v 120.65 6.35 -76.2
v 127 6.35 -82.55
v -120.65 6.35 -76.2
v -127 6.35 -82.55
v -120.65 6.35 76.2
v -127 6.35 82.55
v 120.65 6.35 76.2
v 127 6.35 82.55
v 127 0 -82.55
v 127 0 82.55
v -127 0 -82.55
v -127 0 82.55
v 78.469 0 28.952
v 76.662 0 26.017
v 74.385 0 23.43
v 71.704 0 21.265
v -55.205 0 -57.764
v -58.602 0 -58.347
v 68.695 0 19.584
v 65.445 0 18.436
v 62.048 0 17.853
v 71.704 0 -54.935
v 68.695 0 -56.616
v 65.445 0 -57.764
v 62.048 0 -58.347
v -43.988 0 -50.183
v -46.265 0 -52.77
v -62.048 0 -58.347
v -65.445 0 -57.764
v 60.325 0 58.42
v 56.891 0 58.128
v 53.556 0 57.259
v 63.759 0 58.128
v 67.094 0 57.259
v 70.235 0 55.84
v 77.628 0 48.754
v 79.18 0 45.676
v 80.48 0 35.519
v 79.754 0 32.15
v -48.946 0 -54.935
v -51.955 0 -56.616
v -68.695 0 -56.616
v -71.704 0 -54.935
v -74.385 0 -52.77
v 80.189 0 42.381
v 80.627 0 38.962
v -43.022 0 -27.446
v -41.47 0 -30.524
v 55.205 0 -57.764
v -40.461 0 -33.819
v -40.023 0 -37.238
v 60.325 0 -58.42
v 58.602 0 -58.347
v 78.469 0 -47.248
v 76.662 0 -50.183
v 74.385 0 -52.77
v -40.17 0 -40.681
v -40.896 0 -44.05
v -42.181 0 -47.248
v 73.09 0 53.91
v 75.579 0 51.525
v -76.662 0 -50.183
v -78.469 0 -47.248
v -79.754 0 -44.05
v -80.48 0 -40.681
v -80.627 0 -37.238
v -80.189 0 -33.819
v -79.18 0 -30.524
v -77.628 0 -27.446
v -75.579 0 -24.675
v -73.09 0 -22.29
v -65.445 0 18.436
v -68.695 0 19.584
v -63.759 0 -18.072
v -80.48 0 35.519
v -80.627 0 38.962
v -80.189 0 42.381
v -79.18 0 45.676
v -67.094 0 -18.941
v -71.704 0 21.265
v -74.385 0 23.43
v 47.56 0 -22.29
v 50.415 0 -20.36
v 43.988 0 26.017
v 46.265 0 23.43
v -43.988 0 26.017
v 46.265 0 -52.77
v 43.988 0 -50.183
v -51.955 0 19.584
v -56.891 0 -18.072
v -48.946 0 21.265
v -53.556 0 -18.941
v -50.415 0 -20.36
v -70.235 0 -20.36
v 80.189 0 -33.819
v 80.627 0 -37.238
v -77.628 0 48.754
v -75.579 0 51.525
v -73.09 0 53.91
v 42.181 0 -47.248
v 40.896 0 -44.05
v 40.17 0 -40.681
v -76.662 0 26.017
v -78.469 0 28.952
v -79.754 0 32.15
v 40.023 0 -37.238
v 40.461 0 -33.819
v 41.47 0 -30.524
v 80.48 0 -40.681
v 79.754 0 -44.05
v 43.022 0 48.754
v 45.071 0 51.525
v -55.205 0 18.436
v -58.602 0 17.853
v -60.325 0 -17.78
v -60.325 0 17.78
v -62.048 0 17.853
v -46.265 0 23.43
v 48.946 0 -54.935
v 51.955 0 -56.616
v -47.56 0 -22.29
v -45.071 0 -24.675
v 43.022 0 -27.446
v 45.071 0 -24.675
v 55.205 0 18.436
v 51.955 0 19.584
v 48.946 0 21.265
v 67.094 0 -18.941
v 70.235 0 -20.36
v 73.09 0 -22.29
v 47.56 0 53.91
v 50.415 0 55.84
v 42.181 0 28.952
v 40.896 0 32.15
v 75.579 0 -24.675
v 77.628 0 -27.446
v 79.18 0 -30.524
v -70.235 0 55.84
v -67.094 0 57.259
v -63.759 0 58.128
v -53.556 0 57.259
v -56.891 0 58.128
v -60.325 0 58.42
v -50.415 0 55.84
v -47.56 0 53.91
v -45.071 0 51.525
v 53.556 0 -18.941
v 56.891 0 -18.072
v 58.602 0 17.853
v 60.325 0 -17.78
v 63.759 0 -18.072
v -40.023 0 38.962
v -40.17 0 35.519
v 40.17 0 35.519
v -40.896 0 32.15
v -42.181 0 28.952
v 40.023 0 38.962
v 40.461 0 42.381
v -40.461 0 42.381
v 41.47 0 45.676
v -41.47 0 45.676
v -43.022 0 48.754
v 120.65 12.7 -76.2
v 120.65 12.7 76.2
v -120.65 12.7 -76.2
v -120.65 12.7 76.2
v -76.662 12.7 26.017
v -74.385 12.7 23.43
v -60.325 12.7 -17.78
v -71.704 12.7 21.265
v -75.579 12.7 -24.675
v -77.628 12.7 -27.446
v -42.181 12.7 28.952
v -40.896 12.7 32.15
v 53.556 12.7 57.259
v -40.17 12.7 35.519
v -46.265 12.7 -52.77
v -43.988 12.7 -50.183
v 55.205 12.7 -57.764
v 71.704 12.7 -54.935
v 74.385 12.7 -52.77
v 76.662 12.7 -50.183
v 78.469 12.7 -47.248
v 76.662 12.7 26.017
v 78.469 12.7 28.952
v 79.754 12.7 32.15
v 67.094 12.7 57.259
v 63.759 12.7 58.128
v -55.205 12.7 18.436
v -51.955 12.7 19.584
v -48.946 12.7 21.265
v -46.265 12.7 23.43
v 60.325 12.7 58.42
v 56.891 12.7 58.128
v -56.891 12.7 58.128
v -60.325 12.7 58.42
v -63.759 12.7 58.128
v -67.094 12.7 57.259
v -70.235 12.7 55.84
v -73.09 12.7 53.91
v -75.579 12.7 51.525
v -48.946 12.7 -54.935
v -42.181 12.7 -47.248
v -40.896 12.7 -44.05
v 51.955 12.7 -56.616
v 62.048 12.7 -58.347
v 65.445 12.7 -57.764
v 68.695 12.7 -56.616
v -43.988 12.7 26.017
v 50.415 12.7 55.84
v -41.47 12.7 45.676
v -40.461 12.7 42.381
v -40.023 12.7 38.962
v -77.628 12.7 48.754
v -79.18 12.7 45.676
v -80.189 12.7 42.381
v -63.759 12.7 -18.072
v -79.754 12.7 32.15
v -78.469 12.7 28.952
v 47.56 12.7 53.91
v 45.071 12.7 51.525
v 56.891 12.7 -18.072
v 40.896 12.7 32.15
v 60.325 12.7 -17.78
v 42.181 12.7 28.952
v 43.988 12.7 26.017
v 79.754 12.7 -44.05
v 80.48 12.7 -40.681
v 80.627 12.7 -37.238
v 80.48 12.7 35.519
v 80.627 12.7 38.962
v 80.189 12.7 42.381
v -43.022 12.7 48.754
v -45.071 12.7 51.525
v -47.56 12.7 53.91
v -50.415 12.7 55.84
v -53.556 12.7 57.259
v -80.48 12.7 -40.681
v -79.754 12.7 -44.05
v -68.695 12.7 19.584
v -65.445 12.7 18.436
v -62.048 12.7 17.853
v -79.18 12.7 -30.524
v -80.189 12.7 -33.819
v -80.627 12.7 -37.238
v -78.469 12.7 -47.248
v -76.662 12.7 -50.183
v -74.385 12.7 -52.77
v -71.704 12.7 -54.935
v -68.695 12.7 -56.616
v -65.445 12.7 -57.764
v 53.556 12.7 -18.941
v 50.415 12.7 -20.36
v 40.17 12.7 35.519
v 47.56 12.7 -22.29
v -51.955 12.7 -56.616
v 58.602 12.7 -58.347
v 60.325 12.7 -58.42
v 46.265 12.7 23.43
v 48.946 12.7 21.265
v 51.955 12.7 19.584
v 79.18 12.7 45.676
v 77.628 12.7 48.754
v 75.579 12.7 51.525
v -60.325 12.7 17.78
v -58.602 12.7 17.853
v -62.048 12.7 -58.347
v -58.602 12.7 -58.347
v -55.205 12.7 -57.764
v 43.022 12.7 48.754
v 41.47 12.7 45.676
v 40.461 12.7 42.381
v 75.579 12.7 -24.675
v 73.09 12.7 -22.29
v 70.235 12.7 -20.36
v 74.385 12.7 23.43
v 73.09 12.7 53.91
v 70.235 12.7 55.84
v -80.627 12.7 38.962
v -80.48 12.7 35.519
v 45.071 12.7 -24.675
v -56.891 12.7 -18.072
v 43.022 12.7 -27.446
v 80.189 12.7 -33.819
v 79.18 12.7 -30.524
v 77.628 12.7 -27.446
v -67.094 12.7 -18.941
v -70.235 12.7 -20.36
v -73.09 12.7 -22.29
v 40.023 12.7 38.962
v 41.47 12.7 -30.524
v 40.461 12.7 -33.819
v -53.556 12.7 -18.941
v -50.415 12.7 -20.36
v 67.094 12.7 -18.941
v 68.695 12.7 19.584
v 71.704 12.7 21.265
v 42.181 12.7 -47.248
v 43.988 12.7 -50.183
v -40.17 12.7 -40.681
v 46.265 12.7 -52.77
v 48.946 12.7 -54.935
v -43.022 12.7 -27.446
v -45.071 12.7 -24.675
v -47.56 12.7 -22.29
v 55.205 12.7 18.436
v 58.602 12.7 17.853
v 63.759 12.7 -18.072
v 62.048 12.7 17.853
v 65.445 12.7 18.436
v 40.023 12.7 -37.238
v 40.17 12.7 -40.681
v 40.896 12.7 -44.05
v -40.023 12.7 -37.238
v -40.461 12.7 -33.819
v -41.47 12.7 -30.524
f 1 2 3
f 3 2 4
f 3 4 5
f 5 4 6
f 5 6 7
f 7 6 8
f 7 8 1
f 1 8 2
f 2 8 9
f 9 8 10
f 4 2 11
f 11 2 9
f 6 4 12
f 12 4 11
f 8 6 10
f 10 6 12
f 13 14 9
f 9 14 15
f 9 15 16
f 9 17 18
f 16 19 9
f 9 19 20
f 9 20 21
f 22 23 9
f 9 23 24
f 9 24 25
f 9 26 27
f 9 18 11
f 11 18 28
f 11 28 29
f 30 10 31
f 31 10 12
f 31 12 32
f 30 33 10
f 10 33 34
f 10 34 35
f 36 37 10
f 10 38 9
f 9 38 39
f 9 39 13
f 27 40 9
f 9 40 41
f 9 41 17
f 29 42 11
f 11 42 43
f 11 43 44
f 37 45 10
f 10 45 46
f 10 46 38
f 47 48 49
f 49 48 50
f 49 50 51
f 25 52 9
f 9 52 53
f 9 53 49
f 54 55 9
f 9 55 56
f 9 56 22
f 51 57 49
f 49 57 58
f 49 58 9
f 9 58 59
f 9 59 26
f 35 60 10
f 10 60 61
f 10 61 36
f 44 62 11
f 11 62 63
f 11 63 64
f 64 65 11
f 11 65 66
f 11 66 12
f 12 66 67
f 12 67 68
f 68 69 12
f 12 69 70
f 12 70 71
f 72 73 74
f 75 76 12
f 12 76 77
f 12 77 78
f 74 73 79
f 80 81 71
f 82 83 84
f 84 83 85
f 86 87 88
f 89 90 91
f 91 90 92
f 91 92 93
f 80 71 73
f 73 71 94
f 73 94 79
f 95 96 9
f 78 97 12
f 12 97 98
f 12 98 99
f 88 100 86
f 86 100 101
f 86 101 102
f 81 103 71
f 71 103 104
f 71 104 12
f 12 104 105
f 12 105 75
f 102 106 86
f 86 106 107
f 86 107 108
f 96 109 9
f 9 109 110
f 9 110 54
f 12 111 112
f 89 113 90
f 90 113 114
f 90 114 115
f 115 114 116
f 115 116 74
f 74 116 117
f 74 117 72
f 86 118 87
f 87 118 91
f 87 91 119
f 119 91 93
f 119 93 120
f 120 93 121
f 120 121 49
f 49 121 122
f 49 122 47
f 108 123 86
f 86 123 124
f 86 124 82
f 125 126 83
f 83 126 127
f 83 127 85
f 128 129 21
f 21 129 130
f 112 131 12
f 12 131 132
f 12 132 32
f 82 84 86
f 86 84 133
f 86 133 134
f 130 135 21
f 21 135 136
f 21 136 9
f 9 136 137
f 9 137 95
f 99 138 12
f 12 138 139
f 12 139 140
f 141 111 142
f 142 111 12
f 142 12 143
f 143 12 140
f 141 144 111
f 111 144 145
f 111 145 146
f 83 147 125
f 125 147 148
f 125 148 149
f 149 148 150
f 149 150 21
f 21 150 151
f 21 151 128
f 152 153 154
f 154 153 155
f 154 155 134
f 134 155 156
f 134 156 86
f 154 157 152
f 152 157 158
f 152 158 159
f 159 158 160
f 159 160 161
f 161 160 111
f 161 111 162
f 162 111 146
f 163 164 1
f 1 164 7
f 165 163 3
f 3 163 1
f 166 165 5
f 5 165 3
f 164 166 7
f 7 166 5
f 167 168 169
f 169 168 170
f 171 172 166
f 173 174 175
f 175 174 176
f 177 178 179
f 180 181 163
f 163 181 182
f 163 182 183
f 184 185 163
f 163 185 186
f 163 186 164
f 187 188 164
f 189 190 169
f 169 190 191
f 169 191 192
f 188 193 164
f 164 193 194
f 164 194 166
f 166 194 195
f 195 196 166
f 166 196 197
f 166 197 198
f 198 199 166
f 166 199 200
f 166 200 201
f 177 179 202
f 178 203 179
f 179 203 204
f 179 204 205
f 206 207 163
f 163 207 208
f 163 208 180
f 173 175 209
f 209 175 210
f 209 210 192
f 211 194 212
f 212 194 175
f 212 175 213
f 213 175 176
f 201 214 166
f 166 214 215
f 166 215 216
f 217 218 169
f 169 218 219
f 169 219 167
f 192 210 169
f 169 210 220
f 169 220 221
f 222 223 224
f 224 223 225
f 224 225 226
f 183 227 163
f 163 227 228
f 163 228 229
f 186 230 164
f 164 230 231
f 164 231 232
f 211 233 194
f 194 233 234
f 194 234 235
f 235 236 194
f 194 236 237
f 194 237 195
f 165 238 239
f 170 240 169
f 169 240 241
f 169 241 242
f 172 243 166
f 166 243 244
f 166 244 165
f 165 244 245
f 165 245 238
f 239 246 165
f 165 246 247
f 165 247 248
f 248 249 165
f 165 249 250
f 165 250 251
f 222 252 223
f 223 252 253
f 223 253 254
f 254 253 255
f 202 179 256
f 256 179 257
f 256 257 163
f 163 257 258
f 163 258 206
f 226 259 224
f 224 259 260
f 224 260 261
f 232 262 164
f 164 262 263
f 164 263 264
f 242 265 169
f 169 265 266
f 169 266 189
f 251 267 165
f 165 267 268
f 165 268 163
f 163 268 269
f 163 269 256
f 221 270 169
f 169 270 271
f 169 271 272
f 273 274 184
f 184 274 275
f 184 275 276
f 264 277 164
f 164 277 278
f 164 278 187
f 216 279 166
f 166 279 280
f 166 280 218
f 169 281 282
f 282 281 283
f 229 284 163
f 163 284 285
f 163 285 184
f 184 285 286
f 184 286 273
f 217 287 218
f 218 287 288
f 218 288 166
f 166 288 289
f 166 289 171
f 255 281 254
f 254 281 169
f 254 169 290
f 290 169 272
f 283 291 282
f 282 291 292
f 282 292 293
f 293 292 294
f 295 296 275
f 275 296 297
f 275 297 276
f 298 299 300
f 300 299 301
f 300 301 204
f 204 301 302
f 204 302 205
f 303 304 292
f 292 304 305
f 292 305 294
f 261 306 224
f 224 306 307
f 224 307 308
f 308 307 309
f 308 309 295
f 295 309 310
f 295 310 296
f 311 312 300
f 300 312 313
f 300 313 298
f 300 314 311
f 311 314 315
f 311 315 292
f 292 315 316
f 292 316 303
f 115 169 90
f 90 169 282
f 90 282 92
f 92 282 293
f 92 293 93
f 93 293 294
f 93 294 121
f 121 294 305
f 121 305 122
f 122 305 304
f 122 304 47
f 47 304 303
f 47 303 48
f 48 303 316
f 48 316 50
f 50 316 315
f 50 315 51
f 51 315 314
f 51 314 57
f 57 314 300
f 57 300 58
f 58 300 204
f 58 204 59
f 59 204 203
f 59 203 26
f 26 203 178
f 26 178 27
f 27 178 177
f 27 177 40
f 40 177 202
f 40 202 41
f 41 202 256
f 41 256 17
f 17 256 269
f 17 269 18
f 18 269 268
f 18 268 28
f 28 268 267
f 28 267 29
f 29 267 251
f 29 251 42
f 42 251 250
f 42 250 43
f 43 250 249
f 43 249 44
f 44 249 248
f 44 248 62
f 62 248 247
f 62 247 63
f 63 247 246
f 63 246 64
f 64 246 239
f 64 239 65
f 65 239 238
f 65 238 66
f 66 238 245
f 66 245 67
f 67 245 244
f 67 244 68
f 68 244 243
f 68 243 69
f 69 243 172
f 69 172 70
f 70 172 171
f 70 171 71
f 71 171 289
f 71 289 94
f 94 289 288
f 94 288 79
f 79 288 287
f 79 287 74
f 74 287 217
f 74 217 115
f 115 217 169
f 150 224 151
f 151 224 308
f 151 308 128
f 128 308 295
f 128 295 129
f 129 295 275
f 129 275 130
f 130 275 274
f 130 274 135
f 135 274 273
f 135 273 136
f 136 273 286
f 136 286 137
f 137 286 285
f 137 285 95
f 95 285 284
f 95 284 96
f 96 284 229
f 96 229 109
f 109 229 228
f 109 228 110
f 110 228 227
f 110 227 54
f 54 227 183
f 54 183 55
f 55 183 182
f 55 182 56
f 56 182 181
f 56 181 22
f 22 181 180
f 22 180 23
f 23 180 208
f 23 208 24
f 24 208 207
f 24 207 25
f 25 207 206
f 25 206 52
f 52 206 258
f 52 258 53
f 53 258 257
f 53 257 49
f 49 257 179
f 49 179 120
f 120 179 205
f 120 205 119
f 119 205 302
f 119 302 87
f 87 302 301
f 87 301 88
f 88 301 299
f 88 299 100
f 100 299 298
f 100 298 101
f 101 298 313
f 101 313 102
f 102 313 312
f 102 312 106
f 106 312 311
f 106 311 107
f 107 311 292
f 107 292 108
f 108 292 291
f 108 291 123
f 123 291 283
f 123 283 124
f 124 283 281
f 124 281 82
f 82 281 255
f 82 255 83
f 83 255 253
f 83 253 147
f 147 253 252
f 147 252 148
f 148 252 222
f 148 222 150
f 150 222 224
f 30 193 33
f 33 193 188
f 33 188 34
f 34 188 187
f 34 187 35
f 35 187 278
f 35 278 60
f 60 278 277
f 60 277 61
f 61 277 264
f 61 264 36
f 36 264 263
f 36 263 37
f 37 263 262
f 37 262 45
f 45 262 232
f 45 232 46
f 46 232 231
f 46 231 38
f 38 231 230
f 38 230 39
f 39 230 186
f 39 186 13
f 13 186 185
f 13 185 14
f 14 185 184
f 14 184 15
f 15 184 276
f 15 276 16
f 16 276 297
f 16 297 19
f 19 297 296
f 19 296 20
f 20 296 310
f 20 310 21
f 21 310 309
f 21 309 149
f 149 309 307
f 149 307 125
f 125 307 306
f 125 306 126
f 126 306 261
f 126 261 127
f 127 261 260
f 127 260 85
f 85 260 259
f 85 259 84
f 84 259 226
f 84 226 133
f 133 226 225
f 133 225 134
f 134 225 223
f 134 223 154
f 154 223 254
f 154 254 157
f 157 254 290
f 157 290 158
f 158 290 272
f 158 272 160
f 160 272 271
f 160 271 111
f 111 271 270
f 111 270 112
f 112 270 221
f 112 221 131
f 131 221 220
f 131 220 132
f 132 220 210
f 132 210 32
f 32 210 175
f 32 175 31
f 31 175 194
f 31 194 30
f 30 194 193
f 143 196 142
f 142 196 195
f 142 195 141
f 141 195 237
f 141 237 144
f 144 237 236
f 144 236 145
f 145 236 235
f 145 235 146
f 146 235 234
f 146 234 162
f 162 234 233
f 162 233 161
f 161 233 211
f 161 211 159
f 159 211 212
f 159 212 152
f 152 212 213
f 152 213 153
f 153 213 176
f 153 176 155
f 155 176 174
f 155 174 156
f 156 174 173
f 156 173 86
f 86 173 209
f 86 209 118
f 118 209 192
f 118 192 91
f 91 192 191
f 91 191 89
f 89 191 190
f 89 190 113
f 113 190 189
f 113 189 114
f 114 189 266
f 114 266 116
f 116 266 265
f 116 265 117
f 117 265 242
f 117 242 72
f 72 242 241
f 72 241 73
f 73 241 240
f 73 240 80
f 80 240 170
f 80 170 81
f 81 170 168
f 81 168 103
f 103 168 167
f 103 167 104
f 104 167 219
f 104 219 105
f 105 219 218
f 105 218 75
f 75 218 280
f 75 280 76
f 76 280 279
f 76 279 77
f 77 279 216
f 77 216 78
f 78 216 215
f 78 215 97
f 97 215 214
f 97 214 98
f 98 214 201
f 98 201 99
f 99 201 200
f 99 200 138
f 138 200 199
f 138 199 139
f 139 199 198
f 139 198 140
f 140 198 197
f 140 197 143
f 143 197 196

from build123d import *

# Parameters (mm, degrees)
SKETCH2_W           = 254
SKETCH2_H           = 165.1
BOSS_EXTRUDE1_DEPTH = 6.35
SKETCH3_W           = 241.3
SKETCH3_H           = 152.4
BOSS_EXTRUDE2_DEPTH = 6.35
SKETCH4_R           = 20.32
CUT_EXTRUDE2_DEPTH  = 153.002606886


with BuildPart() as part:
    # Sketch2 → Boss-Extrude1 (new body)
    with BuildSketch(Plane(origin=(0, 0, 0), x_dir=(1, 0, 0), z_dir=(0, 1, 0))):
        Rectangle(SKETCH2_W, SKETCH2_H)
    extrude(amount=BOSS_EXTRUDE1_DEPTH)

    # Sketch3 → Boss-Extrude2 (add)
    with BuildSketch(Plane(origin=(0, 6.35, 0), x_dir=(1, 0, 0), z_dir=(0, 1, 0))):
        Rectangle(SKETCH3_W, SKETCH3_H)
    extrude(amount=BOSS_EXTRUDE2_DEPTH)

    # Sketch4 → Cut-Extrude2 (cut, through all)
    with BuildSketch(Plane(origin=(0, 12.7, 0), x_dir=(1, 0, 0), z_dir=(0, 1, 0))):
        with Locations(Location((-60.325, 38.1, 0), (0, 0, 270))):
            Circle(SKETCH4_R)
        with Locations(Location((60.325, 38.1, 0), (0, 0, 90))):
            Circle(SKETCH4_R)
        with Locations(Location((60.325, -38.1, 0), (0, 0, 270))):
            Circle(SKETCH4_R)
        with Locations(Location((-60.325, -38.1, 0), (0, 0, 90))):
            Circle(SKETCH4_R)
    extrude(amount=-CUT_EXTRUDE2_DEPTH, mode=Mode.SUBTRACT)


solid = part.part
